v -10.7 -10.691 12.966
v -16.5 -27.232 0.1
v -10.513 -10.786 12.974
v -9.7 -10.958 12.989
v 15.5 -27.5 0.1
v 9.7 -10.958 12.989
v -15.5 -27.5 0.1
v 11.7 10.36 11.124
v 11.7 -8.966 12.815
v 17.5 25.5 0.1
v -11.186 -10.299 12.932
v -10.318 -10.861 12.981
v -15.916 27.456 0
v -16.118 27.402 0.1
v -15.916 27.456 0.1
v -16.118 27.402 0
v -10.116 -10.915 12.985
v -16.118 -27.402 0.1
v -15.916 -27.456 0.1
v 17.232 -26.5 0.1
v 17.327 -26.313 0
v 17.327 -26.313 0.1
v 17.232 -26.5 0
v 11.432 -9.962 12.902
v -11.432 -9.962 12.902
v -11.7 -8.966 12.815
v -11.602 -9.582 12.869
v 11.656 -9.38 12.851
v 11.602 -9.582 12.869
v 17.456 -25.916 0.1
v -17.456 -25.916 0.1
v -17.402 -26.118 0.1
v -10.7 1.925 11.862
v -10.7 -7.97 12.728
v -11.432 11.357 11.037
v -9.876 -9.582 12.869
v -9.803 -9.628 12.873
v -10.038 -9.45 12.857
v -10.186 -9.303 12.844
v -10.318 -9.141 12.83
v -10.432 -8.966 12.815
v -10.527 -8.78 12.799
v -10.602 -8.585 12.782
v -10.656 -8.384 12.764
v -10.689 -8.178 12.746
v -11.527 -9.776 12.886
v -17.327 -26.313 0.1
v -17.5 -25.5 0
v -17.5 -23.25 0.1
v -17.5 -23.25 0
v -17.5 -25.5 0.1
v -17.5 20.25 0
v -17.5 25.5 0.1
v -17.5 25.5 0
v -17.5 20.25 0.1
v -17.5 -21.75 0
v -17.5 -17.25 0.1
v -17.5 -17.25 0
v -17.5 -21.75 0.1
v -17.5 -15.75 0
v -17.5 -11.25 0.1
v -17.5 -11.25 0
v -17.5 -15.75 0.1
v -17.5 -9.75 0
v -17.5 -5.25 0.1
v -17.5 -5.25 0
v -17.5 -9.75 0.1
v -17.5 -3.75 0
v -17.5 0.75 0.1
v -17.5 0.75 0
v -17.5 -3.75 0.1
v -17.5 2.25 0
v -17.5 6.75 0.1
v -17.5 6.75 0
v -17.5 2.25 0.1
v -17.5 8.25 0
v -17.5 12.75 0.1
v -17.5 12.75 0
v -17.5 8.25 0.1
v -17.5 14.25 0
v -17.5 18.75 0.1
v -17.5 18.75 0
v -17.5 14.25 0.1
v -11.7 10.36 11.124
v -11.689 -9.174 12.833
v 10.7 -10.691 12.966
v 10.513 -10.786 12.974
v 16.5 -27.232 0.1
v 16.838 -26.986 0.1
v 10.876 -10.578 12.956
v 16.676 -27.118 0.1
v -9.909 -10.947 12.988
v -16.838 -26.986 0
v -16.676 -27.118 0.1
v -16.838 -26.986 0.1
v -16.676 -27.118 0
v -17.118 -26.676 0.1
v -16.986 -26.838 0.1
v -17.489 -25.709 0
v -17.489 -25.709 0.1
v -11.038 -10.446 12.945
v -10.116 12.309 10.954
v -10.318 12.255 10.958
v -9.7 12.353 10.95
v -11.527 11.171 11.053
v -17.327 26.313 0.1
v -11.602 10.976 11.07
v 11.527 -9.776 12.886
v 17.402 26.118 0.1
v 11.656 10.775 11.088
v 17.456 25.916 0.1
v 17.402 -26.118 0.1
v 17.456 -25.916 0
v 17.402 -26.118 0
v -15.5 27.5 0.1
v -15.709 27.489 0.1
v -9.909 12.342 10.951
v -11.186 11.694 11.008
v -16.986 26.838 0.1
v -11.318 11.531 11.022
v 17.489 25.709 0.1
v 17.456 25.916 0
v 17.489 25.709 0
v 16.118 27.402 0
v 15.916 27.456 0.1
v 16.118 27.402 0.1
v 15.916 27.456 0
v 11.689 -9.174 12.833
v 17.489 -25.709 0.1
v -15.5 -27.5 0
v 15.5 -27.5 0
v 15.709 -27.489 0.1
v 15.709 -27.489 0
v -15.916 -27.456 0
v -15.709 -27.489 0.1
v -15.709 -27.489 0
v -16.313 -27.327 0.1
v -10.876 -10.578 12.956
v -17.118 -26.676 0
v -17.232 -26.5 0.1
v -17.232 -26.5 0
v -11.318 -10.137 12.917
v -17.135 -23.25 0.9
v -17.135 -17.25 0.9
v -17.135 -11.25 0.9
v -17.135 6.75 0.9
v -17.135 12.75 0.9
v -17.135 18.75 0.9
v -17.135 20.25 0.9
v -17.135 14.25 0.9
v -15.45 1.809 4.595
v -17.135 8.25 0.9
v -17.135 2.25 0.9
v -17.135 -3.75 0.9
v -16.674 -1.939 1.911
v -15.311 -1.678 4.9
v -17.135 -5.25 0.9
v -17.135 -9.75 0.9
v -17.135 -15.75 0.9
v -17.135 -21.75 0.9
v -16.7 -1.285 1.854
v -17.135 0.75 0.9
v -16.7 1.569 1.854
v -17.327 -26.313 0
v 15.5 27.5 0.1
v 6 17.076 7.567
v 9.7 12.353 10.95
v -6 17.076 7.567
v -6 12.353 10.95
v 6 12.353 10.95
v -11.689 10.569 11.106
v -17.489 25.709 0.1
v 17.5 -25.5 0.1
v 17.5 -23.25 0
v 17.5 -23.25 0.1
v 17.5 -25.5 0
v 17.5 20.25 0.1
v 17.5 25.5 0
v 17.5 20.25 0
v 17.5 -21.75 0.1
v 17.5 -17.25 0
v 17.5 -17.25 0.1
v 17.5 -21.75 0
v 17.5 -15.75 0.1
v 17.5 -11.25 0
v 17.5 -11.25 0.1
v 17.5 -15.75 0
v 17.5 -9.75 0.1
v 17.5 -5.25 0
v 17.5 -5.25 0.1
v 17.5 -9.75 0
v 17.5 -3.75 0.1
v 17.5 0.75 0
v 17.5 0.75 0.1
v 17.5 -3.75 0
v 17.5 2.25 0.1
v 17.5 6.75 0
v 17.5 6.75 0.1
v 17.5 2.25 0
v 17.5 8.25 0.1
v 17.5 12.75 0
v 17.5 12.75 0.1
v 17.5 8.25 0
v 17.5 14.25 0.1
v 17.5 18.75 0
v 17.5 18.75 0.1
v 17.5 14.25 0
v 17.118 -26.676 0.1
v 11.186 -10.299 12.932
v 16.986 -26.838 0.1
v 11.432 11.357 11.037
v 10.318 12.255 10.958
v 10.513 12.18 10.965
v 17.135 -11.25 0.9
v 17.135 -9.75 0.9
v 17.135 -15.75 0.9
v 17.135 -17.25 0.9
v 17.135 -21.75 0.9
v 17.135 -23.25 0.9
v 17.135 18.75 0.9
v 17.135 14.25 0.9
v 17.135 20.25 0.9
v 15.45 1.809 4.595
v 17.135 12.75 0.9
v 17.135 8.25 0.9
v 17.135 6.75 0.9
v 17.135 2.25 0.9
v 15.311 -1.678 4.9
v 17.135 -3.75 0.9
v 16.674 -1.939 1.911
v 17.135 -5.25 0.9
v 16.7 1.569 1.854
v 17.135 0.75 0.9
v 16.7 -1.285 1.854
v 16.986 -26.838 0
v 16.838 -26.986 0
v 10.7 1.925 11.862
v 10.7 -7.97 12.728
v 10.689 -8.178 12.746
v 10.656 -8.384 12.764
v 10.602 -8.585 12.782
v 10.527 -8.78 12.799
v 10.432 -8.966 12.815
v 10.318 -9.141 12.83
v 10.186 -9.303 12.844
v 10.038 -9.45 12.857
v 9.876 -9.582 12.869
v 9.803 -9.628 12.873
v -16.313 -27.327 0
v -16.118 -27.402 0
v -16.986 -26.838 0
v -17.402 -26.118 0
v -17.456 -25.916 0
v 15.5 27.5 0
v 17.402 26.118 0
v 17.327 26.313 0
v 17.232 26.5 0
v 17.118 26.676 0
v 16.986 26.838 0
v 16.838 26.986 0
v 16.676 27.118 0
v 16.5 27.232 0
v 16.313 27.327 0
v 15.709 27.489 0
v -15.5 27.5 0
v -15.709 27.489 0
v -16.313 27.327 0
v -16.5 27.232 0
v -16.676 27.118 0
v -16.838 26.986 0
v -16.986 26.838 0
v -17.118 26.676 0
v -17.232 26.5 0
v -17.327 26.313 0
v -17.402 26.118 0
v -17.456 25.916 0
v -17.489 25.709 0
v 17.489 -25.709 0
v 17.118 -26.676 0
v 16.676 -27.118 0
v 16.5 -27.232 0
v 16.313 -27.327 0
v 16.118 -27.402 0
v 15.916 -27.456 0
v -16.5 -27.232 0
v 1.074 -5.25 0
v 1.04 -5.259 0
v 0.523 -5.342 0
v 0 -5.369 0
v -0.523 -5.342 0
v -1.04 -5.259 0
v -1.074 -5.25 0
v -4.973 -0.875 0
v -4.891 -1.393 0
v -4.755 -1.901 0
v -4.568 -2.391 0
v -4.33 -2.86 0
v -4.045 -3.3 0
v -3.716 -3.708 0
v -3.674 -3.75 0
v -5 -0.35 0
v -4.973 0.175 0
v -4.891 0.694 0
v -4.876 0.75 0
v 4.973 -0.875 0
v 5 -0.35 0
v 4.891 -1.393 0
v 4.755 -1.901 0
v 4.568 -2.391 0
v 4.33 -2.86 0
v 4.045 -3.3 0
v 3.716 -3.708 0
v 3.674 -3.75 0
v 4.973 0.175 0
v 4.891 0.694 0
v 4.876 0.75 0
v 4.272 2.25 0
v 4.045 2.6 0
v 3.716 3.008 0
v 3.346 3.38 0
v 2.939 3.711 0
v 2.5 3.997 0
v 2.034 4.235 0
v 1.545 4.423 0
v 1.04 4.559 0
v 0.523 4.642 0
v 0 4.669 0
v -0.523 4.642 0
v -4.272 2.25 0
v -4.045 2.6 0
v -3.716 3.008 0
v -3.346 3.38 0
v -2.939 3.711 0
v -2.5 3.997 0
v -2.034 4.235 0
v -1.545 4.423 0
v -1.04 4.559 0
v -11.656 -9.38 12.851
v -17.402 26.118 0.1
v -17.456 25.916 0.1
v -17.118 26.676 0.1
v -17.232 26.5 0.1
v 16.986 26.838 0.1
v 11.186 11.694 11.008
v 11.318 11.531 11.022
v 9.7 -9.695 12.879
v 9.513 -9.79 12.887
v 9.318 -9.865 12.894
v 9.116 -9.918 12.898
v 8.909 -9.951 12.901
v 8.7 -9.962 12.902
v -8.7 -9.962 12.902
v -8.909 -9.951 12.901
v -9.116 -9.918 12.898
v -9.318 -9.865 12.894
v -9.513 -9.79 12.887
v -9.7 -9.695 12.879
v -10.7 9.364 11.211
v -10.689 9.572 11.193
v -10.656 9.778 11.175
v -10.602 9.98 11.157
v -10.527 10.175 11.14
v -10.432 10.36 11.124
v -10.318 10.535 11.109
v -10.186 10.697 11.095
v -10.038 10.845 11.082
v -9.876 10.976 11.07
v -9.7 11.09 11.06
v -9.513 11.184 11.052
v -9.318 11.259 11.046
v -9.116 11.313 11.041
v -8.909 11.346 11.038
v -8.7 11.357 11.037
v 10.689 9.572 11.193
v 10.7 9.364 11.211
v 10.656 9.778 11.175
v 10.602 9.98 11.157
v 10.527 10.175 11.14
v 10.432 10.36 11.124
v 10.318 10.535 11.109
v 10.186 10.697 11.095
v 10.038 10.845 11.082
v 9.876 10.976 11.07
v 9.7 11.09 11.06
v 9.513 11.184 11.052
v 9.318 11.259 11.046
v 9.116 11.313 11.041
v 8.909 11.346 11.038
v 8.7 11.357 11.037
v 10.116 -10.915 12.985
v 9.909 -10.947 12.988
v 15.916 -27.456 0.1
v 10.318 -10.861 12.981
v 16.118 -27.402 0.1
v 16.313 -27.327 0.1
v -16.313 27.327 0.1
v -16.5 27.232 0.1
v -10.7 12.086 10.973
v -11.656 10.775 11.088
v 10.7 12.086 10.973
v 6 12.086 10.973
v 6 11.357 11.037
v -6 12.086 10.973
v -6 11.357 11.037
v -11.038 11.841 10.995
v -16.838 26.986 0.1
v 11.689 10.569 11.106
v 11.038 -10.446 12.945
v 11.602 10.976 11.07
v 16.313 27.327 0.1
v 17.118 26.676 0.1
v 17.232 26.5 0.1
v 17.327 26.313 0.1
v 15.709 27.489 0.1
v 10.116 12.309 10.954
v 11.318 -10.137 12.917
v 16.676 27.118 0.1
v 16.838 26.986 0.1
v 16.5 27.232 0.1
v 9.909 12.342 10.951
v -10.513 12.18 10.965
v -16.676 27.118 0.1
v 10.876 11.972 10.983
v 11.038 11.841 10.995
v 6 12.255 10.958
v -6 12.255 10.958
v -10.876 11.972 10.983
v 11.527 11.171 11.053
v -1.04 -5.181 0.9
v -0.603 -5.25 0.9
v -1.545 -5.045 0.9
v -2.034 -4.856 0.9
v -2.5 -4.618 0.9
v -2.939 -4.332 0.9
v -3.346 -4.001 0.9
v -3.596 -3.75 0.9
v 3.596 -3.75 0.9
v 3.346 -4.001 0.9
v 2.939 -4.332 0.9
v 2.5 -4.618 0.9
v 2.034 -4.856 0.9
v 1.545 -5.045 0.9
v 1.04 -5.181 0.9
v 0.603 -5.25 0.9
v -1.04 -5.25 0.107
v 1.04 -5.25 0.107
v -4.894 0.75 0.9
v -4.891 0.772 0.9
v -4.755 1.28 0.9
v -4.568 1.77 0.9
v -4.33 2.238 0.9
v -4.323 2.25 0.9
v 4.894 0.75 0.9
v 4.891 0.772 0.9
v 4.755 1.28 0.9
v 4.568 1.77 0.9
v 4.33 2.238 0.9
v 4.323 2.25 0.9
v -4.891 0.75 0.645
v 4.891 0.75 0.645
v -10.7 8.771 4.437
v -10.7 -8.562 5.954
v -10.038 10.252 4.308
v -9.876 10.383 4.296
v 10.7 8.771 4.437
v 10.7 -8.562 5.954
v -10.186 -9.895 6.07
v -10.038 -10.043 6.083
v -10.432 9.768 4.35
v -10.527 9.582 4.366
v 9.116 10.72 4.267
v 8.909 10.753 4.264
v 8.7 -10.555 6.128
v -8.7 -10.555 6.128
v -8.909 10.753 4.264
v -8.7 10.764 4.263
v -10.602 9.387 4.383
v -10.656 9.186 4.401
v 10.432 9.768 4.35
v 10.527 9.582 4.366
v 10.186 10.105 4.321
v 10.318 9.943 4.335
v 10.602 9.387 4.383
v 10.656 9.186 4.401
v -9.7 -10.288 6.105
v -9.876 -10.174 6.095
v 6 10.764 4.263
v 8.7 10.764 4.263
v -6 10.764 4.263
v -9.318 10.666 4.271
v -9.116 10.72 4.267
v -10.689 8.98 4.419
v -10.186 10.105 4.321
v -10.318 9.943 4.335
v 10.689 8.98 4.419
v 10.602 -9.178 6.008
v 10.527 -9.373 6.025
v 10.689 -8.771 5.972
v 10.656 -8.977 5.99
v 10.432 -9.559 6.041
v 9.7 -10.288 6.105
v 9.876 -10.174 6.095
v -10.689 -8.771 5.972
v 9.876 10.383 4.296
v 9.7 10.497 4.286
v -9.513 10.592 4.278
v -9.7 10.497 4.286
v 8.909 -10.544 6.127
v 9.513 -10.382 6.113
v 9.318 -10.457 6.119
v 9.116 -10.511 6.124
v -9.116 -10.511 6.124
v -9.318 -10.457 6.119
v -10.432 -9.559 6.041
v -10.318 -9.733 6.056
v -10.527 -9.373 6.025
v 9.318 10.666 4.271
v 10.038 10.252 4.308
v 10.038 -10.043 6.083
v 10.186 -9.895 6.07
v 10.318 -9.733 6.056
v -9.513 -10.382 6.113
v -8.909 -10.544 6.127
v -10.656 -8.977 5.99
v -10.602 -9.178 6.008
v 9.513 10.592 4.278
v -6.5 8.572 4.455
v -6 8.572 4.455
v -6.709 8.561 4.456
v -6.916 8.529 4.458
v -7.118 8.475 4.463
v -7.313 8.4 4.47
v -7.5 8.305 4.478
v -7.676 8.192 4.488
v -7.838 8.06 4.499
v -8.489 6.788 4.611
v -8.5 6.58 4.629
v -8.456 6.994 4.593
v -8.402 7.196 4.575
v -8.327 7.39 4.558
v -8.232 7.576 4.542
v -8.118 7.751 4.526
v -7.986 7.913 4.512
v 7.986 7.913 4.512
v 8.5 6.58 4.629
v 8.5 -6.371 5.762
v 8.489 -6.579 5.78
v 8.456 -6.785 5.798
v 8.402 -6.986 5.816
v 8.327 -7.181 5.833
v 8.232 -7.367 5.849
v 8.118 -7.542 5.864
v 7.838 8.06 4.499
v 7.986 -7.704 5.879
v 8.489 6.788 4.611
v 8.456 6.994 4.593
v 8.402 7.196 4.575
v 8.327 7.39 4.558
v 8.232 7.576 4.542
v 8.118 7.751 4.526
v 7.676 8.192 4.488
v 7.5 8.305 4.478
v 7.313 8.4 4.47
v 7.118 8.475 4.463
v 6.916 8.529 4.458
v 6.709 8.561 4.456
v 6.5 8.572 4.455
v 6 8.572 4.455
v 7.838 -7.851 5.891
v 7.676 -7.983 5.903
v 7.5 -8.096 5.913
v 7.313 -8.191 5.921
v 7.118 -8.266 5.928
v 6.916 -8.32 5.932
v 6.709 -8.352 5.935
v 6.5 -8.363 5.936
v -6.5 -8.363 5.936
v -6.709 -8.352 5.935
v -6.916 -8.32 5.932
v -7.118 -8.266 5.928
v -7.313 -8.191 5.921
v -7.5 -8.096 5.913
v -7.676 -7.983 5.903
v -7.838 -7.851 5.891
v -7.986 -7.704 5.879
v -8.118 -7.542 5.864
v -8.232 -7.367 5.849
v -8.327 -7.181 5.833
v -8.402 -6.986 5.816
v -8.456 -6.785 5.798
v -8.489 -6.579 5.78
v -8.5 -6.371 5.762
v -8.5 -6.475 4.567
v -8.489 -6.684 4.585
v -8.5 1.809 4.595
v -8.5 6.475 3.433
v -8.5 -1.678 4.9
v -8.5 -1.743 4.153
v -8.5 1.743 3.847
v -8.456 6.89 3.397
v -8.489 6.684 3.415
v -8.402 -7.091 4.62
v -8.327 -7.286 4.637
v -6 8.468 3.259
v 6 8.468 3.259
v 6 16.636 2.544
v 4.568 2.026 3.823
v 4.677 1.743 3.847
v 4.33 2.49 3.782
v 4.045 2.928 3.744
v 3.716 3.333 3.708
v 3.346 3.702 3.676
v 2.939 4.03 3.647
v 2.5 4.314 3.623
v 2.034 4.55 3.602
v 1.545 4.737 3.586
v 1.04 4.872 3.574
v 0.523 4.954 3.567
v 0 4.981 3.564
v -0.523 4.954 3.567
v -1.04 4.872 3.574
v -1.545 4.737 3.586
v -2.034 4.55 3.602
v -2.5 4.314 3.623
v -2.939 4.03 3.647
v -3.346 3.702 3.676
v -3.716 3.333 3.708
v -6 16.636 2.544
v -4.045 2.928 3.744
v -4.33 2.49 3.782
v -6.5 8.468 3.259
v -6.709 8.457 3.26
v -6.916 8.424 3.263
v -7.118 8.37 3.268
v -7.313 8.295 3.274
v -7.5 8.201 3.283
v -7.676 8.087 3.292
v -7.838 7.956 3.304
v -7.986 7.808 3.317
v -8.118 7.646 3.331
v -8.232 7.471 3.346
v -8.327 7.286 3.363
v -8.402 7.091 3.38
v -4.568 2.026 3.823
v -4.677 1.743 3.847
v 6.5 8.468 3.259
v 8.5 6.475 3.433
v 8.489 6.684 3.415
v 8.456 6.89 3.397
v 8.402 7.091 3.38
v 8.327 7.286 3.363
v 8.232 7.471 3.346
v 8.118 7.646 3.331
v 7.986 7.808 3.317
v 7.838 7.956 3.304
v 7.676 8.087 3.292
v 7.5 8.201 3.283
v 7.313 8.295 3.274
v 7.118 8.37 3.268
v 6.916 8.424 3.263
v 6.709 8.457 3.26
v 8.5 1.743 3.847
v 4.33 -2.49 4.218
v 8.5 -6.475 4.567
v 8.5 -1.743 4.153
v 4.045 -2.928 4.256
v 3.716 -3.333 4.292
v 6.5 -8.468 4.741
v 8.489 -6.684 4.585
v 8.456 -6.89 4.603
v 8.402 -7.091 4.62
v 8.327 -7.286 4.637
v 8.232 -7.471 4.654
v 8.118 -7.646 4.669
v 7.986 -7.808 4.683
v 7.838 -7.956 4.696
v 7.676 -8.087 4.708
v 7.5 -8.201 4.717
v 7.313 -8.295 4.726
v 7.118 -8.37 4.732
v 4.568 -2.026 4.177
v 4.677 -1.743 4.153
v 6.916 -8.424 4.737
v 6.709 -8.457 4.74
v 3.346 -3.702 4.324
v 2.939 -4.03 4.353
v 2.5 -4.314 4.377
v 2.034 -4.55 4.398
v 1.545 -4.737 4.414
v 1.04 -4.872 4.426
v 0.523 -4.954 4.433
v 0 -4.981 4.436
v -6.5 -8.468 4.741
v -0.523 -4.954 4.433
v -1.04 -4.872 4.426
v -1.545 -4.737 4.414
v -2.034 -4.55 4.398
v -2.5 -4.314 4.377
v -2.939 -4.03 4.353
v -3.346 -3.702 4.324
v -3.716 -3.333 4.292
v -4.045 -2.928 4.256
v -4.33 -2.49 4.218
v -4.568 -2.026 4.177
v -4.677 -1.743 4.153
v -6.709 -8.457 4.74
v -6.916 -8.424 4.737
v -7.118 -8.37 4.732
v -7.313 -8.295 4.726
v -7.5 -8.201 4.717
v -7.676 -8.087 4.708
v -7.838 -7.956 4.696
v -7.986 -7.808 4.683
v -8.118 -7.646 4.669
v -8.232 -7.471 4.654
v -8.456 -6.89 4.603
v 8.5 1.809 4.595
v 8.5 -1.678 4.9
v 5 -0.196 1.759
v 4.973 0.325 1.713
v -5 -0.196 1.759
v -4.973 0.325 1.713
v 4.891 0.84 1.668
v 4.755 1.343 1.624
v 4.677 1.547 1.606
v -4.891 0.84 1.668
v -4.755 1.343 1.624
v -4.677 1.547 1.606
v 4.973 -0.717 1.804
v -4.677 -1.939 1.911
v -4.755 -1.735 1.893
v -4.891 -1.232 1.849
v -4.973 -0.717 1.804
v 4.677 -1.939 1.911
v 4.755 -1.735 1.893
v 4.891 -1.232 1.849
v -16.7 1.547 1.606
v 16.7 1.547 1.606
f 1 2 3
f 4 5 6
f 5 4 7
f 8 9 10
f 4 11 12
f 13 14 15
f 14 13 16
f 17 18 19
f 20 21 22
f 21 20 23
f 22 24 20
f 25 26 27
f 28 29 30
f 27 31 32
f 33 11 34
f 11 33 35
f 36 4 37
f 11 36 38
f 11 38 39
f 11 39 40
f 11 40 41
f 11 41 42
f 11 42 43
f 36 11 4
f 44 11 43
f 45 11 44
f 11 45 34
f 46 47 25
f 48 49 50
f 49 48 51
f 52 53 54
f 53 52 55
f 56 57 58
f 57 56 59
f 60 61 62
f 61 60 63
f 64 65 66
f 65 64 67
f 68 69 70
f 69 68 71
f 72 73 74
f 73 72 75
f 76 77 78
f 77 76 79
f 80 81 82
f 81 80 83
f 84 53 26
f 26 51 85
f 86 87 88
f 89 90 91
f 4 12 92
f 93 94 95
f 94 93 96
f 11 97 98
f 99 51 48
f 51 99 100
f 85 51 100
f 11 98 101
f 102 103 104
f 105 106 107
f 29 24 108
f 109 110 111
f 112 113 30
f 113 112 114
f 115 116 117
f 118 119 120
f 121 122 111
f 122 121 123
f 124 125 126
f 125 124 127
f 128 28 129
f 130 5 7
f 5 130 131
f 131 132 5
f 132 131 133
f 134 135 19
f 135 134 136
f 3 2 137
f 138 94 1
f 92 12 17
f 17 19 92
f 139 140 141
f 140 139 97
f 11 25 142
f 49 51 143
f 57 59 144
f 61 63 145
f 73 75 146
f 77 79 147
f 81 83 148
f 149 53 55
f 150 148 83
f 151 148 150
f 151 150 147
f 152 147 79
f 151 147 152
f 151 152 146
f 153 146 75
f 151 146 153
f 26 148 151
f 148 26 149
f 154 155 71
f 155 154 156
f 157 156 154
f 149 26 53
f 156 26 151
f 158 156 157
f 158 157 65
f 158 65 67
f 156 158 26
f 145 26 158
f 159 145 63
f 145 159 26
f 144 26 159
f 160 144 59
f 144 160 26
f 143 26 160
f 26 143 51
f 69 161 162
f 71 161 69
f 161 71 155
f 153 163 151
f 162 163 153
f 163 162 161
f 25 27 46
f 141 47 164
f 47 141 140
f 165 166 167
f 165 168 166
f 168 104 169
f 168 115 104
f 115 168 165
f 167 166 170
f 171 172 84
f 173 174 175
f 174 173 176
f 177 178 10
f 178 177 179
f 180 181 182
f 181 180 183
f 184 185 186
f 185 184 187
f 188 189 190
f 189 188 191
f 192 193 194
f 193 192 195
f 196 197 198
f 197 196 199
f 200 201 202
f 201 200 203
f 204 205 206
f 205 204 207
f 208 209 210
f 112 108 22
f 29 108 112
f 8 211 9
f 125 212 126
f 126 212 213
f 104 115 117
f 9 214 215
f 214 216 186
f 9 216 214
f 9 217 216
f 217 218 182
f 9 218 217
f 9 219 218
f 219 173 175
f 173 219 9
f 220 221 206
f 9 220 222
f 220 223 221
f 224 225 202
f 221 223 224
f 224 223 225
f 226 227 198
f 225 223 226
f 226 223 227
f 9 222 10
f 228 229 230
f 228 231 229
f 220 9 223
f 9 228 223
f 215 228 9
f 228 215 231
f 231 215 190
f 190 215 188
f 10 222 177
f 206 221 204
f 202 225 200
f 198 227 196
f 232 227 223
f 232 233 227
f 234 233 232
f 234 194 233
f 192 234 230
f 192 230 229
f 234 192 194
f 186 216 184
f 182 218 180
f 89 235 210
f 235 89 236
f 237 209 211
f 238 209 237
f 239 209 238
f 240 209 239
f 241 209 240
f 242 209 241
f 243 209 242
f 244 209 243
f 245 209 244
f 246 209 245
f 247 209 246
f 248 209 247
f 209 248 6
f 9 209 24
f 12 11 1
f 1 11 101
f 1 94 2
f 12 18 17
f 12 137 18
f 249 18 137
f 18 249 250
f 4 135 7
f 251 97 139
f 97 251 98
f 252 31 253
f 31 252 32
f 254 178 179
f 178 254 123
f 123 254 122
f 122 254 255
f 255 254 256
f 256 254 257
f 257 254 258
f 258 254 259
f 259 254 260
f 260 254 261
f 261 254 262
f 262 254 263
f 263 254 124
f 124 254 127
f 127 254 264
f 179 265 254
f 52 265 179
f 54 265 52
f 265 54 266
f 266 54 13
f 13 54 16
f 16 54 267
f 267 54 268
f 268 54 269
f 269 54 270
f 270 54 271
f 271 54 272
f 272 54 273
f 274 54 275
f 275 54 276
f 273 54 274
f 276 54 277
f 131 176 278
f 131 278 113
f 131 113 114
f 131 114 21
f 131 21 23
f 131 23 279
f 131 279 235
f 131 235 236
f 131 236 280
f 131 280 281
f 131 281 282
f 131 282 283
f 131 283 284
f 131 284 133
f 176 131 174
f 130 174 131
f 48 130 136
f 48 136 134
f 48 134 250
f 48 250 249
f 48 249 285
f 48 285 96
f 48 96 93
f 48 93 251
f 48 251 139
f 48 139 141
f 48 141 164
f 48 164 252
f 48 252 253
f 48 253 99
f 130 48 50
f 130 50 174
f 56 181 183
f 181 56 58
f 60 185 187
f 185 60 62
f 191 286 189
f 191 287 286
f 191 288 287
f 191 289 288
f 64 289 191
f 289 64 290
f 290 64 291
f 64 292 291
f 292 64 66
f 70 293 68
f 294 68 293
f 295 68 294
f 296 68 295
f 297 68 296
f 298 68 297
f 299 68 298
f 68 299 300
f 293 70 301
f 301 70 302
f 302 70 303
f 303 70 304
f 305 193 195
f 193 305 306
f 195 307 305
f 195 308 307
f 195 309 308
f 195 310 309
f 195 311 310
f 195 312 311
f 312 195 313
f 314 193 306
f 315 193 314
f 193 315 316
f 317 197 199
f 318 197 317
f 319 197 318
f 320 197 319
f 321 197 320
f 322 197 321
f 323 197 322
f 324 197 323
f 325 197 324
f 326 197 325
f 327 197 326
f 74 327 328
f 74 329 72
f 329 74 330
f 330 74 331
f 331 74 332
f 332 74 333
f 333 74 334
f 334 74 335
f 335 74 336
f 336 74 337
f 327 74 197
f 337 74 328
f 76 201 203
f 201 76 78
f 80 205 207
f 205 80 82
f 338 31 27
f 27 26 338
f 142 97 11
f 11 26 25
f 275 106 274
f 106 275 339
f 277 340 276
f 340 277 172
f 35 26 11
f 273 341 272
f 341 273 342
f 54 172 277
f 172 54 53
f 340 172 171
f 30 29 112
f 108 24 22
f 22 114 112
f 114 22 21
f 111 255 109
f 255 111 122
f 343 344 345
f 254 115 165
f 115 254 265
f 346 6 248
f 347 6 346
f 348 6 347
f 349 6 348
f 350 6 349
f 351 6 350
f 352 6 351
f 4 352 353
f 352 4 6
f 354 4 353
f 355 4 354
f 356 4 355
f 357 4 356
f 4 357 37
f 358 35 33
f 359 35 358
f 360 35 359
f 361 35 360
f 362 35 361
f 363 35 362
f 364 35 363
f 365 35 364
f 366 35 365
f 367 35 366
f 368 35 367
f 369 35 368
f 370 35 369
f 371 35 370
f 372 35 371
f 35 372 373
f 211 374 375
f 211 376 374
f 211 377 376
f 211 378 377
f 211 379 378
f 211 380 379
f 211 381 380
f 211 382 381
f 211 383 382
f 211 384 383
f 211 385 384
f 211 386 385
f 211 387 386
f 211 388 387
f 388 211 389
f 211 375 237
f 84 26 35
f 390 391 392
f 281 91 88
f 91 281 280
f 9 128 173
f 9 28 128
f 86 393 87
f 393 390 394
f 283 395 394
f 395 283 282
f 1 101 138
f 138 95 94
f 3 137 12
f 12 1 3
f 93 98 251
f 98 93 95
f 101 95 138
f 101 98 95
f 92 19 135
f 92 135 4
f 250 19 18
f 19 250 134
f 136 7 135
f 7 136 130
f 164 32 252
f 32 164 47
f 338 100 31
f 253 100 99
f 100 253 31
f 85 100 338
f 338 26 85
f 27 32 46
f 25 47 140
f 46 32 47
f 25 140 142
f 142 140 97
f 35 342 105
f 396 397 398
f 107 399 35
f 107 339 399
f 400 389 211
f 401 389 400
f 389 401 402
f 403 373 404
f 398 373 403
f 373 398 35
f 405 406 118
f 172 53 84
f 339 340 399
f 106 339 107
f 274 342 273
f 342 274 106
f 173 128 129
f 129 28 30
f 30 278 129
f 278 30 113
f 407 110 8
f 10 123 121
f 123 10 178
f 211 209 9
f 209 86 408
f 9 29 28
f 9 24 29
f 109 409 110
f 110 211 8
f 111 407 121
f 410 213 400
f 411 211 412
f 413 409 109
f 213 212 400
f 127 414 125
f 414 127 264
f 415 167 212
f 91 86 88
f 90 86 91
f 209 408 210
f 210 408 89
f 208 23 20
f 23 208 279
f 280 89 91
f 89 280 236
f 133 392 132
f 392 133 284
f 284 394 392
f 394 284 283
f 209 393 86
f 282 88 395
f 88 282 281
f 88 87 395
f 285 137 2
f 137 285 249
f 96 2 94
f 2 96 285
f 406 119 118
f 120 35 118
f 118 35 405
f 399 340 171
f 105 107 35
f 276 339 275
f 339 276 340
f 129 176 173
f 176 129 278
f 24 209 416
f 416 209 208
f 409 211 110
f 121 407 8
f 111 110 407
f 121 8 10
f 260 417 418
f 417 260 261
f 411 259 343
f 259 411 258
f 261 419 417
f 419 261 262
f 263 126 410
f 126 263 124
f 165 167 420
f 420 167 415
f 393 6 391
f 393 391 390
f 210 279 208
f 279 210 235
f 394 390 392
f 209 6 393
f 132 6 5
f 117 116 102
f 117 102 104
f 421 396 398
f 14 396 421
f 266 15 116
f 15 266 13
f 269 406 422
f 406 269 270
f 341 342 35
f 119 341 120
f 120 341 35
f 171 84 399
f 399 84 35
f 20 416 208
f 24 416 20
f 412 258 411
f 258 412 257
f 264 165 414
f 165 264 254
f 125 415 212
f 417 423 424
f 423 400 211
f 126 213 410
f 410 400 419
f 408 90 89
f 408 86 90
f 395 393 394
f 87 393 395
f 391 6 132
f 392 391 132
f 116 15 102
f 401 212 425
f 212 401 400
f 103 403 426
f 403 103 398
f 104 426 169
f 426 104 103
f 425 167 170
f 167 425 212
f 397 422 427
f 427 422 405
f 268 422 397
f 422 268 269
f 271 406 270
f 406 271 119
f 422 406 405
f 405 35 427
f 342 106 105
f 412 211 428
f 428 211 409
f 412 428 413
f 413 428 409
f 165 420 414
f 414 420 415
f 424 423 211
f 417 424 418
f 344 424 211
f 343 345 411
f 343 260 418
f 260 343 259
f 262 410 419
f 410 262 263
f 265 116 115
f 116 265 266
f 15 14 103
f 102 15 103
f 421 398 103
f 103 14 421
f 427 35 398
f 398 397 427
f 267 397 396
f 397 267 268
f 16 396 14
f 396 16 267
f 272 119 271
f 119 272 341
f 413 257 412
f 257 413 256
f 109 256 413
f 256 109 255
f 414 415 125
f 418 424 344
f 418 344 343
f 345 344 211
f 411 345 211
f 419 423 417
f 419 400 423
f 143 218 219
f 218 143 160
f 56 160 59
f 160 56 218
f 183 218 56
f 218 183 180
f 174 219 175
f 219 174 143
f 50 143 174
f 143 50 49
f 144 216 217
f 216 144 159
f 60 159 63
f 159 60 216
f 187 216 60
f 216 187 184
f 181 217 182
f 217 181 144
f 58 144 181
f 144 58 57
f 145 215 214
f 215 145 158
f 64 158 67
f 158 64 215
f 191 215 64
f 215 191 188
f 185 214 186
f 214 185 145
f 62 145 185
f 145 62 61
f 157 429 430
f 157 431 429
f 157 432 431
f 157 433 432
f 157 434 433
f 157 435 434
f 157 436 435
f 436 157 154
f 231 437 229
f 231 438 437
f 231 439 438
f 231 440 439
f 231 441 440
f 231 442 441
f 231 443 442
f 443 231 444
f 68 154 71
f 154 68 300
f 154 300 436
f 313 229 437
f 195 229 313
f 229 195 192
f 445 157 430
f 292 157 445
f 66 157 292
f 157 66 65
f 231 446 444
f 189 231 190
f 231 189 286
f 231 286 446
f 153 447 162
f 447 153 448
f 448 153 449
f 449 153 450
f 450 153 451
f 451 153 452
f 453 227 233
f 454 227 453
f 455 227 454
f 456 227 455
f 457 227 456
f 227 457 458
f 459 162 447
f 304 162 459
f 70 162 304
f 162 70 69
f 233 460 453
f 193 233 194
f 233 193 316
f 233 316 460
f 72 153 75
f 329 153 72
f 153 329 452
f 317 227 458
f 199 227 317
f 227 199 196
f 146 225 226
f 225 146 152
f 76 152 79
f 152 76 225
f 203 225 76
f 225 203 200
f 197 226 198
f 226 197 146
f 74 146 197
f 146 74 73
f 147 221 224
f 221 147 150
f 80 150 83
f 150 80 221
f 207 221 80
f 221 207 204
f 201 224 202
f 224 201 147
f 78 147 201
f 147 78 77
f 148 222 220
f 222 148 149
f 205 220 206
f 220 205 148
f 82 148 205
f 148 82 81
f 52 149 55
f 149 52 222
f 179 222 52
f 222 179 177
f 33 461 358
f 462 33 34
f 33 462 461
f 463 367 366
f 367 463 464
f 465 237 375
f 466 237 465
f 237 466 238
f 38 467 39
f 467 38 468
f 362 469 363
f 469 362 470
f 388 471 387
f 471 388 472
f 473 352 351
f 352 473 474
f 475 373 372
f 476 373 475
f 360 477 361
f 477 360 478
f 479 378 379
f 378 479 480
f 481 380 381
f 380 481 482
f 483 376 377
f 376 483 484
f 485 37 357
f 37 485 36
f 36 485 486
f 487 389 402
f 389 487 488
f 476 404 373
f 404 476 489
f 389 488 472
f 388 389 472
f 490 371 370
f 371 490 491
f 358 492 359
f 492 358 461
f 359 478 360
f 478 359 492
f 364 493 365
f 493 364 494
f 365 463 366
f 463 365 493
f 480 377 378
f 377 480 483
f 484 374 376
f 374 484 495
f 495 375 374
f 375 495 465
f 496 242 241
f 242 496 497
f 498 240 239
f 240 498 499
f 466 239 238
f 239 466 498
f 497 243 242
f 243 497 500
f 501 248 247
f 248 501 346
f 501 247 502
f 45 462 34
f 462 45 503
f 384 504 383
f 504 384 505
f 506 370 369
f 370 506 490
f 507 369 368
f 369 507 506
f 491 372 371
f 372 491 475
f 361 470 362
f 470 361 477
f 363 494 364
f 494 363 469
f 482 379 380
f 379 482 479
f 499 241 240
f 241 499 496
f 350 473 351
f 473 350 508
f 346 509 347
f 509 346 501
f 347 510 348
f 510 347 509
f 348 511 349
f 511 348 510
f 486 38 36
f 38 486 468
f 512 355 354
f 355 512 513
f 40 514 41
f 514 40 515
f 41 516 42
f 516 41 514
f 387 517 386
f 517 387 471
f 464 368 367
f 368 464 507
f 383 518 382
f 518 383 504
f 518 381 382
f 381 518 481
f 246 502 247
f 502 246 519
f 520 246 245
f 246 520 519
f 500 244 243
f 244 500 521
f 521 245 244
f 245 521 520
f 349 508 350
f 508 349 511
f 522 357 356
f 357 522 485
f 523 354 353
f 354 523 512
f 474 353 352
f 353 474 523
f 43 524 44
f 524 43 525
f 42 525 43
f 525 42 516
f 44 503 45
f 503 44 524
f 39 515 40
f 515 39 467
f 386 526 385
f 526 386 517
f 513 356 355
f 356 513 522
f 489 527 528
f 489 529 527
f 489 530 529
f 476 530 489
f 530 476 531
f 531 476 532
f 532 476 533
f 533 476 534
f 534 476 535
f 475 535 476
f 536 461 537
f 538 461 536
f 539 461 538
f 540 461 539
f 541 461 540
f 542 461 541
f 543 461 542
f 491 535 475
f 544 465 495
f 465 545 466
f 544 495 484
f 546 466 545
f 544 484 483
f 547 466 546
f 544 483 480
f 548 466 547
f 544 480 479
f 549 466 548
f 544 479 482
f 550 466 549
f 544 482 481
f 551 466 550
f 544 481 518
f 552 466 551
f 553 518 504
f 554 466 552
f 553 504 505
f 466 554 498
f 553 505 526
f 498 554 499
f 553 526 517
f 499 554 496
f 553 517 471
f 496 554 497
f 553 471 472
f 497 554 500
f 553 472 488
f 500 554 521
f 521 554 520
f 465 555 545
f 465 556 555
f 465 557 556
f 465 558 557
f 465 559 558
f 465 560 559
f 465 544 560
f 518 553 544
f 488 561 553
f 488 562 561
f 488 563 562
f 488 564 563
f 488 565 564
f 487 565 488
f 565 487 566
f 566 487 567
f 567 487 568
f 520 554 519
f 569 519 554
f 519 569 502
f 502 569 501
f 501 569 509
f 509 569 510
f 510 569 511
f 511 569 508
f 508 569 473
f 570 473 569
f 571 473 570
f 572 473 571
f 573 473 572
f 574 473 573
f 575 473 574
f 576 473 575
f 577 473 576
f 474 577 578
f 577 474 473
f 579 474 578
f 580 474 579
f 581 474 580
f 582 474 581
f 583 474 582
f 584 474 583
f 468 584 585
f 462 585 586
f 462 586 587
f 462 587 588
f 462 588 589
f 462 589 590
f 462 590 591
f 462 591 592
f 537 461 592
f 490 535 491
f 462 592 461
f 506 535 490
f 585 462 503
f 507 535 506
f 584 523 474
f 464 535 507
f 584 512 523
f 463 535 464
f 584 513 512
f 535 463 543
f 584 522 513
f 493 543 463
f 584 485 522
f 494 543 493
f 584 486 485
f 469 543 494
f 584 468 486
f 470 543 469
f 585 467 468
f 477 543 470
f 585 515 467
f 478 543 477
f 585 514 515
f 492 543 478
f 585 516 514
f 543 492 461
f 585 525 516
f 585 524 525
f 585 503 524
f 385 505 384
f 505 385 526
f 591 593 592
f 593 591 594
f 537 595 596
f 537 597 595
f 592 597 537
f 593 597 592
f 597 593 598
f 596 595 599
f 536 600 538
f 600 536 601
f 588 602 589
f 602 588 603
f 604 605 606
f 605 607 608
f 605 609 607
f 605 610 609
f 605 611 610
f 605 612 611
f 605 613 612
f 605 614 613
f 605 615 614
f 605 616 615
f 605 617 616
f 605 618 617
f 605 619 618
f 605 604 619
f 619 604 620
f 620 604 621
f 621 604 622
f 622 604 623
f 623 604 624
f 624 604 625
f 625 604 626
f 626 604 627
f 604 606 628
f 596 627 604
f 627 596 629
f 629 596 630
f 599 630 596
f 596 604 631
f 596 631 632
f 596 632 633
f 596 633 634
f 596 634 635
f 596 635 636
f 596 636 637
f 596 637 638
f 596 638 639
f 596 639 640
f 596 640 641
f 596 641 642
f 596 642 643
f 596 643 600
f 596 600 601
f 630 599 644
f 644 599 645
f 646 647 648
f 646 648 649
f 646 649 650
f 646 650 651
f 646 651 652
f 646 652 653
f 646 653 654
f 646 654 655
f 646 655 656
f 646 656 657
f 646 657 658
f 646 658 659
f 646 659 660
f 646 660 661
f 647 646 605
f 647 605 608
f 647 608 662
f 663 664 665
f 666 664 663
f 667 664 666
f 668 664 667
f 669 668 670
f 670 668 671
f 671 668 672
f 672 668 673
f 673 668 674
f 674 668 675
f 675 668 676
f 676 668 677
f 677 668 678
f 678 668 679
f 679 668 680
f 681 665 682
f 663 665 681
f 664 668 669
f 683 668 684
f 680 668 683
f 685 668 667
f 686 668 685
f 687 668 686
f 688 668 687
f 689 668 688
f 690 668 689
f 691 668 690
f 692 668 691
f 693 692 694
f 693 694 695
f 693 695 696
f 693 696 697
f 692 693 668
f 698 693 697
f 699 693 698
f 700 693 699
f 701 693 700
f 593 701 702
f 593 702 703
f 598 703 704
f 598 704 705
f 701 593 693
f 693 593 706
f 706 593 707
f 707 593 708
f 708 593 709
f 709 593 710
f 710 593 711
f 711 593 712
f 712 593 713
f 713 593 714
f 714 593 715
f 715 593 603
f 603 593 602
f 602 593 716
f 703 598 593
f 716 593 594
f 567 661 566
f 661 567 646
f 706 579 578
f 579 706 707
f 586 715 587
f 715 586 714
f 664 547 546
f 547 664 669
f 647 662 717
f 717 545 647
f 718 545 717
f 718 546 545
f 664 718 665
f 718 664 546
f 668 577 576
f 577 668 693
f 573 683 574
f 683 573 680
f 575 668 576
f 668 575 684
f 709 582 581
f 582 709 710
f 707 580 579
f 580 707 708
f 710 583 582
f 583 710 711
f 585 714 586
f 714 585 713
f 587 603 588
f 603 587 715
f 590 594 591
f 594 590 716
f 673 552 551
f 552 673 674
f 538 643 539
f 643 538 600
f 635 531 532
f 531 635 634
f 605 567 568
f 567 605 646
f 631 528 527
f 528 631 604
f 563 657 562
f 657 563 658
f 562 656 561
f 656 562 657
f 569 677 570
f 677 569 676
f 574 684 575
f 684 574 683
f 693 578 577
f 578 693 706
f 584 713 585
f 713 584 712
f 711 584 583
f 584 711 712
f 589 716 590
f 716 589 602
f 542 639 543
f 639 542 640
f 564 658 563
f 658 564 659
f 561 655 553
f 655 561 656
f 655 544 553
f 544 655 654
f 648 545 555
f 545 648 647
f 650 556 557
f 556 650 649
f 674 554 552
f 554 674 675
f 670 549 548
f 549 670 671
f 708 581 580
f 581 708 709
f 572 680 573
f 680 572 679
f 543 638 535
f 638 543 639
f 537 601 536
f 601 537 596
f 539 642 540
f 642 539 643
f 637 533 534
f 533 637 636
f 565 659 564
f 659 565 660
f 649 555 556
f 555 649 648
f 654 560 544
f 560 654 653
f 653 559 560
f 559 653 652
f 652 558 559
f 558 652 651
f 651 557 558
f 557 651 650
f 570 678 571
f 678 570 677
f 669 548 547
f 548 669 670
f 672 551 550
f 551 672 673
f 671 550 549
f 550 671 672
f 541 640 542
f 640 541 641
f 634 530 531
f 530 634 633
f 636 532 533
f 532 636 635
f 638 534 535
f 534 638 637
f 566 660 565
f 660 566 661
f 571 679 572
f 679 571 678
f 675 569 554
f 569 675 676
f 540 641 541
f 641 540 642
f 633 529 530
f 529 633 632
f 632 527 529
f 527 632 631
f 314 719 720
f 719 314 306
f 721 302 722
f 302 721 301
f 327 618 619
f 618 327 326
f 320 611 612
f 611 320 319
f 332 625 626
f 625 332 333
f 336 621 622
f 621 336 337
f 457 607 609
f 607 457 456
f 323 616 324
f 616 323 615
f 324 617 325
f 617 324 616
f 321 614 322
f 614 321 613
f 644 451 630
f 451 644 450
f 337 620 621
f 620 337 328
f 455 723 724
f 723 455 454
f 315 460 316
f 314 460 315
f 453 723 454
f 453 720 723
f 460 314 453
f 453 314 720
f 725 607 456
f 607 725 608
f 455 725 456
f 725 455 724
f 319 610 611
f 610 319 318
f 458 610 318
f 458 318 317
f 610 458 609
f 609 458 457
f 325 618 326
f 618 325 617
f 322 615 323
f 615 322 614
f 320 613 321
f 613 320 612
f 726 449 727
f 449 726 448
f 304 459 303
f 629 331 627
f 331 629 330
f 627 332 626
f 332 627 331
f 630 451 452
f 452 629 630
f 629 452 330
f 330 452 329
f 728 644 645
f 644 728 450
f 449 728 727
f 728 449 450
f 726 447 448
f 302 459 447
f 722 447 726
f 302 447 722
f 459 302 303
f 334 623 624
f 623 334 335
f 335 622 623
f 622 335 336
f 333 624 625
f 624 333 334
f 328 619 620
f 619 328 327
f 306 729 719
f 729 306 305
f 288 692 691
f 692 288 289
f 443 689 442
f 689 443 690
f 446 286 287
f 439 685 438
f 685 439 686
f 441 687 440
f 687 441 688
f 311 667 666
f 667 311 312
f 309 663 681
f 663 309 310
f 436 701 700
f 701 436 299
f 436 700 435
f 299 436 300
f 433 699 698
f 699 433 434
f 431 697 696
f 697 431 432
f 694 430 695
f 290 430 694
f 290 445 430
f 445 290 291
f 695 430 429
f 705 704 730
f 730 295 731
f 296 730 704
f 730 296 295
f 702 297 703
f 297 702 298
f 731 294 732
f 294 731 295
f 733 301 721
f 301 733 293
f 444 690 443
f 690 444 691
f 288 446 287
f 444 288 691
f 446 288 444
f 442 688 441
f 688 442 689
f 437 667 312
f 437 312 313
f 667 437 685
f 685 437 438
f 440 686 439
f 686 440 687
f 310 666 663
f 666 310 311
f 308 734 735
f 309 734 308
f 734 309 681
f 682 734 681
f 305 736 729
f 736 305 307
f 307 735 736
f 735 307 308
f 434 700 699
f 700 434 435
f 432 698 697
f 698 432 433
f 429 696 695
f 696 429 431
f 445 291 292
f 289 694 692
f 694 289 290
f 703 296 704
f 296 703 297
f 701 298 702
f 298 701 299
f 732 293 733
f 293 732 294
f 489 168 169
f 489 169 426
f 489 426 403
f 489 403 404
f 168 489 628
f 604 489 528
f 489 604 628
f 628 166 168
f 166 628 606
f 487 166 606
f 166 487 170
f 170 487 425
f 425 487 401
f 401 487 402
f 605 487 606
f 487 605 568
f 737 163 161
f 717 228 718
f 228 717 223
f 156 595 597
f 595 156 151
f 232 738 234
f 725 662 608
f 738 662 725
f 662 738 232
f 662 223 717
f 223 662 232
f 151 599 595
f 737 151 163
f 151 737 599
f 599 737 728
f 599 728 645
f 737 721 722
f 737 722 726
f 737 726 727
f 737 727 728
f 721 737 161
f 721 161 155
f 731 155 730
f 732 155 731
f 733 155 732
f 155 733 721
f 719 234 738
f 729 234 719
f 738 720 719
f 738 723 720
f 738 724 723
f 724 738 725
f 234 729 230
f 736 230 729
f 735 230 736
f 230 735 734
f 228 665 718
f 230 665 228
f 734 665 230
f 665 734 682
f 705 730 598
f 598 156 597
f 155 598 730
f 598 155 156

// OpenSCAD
// =============================================================================
// PROJECT: FPV COMPONENT LIBRARY - FIXED WING GPS
// VERSION: 2.8 (Pure Flange Architecture - No Artifacts)
// DESCRIPTION: Hull anchors directly to Z=0. Base size controls the flange.
// =============================================================================

/* [1. FLANGE & FLEX SETTINGS] */
// Tilt to compensate for wing angle
gps_angle       = 5;    
// Width of the mounting footprint
base_w          = 35.0;  
// Length of the mounting footprint
base_l          = 55.0;  
// Width of the relief cuts
slot_width      = 1.5;   
// Depth of the relief cuts (cuts from the bottom up)
slot_depth      = 1.0;
// Distance between centers of relief cuts
slot_pitch      = 6.0;   
corner_radius   = 2.0;   

/* [2. GPS UNIT DIMENSIONS] */
gps_w = 21;              
gps_l = 21;              
gps_h = 8.0;            
wall  = 1.2;             

/* [3. WIRE & HARDWARE] */
// 1:Front, 2:Right, 3:Back, 4:Left
wire_side    = 3;        
wire_width   = 12;      
wire_offset  = 0;      
zt_width     = 3.5;      
zt_depth     = 1.5;      
nob_height   = 1.2;      
chamfer_size = 2.0;      

/* [4. INTERNAL CALCULATIONS] */
box_w = gps_w + (wall*2);
box_l = gps_l + (wall*2);
$fn = 60;                

// ============================================================
// --- MAIN ASSEMBLY ---
// ============================================================

difference() {
    
    // --- STEP 1: SOLID GEOMETRY ---
    union() {
        // The Aerodynamic Fairing / Flange
        // Anchored directly to Z=0 to avoid artifacts
        hull() {
            // Anchor 1: The Footprint on the foam
            rounded_rect(base_w, base_l, 0.1);
            
            // Anchor 2: The flared base of the GPS box (lifted for the fairing)
            translate([0, 0, 4])
                rotate([-gps_angle, 0, 0])
                    gps_outer_shell_solid();
        }
        
        // Internal Corner Nobs (Anchored inside the tilted box)
        translate([0, 0, 4])
            rotate([-gps_angle, 0, 0])
                for(x=[-1,1], y=[-1,1])
                    translate([x*(gps_w/2 - 2), y*(gps_l/2 - 2), 0])
                        cylinder(h=nob_height + 0.1, d=3);
    }

    // --- STEP 2: PARAMETRIC FLEX RELIEF SLOTS ---
    // Cuts upward from slightly below Z=0
    for(i = [-base_l/2 + 5 : slot_pitch : base_l/2 - 5]) {
        translate([0, i, slot_depth/2 - 0.1]) 
            cube([base_w + 2, slot_width, slot_depth], center=true);
    }

    // --- STEP 3: INTERNAL VOIDS ---
    translate([0, 0, 4])
        rotate([-gps_angle, 0, 0]) {
            
            // GPS Cavity
            translate([0, 0, nob_height])
                rounded_rect(gps_w + 0.4, gps_l + 0.4, gps_h + 5);
            
            // Floor Relief
            rounded_rect(gps_w - 4, gps_l - 4, nob_height + 0.1);

            // Ejection hole (goes all the way through)
            translate([0, 0, -50]) cylinder(h=100, d=10);

            // Wire Exit
            rotate([0, 0, (wire_side-1) * -90])
                translate([wire_offset - (wire_width/2), - (gps_l/2) - wall - 5, 0])
                    cube([wire_width, wall + 10, gps_h + 1]);

            // Zip-tie Channel
            translate([0, 0, (zt_depth/2) - zt_depth])
                cube([gps_w + (wall*2) + 10, zt_width, zt_depth * 2], center=true);
        }
}

// ============================================================
// --- MODULES ---
// ============================================================

module gps_outer_shell_solid() {
    hull() {
        rounded_rect(box_w + (chamfer_size*2), box_l + (chamfer_size*2), 0.1);
        translate([0, 0, chamfer_size])
            rounded_rect(box_w, box_l, 0.1);
    }
    rounded_rect(box_w, box_l, gps_h);
}

module rounded_rect(w, l, h) {
    hull() {
        for(x=[-1,1], y=[-1,1])
            translate([x*(w/2 - corner_radius), y*(l/2 - corner_radius), 0])
                cylinder(h=h, r=corner_radius);
    }
}
